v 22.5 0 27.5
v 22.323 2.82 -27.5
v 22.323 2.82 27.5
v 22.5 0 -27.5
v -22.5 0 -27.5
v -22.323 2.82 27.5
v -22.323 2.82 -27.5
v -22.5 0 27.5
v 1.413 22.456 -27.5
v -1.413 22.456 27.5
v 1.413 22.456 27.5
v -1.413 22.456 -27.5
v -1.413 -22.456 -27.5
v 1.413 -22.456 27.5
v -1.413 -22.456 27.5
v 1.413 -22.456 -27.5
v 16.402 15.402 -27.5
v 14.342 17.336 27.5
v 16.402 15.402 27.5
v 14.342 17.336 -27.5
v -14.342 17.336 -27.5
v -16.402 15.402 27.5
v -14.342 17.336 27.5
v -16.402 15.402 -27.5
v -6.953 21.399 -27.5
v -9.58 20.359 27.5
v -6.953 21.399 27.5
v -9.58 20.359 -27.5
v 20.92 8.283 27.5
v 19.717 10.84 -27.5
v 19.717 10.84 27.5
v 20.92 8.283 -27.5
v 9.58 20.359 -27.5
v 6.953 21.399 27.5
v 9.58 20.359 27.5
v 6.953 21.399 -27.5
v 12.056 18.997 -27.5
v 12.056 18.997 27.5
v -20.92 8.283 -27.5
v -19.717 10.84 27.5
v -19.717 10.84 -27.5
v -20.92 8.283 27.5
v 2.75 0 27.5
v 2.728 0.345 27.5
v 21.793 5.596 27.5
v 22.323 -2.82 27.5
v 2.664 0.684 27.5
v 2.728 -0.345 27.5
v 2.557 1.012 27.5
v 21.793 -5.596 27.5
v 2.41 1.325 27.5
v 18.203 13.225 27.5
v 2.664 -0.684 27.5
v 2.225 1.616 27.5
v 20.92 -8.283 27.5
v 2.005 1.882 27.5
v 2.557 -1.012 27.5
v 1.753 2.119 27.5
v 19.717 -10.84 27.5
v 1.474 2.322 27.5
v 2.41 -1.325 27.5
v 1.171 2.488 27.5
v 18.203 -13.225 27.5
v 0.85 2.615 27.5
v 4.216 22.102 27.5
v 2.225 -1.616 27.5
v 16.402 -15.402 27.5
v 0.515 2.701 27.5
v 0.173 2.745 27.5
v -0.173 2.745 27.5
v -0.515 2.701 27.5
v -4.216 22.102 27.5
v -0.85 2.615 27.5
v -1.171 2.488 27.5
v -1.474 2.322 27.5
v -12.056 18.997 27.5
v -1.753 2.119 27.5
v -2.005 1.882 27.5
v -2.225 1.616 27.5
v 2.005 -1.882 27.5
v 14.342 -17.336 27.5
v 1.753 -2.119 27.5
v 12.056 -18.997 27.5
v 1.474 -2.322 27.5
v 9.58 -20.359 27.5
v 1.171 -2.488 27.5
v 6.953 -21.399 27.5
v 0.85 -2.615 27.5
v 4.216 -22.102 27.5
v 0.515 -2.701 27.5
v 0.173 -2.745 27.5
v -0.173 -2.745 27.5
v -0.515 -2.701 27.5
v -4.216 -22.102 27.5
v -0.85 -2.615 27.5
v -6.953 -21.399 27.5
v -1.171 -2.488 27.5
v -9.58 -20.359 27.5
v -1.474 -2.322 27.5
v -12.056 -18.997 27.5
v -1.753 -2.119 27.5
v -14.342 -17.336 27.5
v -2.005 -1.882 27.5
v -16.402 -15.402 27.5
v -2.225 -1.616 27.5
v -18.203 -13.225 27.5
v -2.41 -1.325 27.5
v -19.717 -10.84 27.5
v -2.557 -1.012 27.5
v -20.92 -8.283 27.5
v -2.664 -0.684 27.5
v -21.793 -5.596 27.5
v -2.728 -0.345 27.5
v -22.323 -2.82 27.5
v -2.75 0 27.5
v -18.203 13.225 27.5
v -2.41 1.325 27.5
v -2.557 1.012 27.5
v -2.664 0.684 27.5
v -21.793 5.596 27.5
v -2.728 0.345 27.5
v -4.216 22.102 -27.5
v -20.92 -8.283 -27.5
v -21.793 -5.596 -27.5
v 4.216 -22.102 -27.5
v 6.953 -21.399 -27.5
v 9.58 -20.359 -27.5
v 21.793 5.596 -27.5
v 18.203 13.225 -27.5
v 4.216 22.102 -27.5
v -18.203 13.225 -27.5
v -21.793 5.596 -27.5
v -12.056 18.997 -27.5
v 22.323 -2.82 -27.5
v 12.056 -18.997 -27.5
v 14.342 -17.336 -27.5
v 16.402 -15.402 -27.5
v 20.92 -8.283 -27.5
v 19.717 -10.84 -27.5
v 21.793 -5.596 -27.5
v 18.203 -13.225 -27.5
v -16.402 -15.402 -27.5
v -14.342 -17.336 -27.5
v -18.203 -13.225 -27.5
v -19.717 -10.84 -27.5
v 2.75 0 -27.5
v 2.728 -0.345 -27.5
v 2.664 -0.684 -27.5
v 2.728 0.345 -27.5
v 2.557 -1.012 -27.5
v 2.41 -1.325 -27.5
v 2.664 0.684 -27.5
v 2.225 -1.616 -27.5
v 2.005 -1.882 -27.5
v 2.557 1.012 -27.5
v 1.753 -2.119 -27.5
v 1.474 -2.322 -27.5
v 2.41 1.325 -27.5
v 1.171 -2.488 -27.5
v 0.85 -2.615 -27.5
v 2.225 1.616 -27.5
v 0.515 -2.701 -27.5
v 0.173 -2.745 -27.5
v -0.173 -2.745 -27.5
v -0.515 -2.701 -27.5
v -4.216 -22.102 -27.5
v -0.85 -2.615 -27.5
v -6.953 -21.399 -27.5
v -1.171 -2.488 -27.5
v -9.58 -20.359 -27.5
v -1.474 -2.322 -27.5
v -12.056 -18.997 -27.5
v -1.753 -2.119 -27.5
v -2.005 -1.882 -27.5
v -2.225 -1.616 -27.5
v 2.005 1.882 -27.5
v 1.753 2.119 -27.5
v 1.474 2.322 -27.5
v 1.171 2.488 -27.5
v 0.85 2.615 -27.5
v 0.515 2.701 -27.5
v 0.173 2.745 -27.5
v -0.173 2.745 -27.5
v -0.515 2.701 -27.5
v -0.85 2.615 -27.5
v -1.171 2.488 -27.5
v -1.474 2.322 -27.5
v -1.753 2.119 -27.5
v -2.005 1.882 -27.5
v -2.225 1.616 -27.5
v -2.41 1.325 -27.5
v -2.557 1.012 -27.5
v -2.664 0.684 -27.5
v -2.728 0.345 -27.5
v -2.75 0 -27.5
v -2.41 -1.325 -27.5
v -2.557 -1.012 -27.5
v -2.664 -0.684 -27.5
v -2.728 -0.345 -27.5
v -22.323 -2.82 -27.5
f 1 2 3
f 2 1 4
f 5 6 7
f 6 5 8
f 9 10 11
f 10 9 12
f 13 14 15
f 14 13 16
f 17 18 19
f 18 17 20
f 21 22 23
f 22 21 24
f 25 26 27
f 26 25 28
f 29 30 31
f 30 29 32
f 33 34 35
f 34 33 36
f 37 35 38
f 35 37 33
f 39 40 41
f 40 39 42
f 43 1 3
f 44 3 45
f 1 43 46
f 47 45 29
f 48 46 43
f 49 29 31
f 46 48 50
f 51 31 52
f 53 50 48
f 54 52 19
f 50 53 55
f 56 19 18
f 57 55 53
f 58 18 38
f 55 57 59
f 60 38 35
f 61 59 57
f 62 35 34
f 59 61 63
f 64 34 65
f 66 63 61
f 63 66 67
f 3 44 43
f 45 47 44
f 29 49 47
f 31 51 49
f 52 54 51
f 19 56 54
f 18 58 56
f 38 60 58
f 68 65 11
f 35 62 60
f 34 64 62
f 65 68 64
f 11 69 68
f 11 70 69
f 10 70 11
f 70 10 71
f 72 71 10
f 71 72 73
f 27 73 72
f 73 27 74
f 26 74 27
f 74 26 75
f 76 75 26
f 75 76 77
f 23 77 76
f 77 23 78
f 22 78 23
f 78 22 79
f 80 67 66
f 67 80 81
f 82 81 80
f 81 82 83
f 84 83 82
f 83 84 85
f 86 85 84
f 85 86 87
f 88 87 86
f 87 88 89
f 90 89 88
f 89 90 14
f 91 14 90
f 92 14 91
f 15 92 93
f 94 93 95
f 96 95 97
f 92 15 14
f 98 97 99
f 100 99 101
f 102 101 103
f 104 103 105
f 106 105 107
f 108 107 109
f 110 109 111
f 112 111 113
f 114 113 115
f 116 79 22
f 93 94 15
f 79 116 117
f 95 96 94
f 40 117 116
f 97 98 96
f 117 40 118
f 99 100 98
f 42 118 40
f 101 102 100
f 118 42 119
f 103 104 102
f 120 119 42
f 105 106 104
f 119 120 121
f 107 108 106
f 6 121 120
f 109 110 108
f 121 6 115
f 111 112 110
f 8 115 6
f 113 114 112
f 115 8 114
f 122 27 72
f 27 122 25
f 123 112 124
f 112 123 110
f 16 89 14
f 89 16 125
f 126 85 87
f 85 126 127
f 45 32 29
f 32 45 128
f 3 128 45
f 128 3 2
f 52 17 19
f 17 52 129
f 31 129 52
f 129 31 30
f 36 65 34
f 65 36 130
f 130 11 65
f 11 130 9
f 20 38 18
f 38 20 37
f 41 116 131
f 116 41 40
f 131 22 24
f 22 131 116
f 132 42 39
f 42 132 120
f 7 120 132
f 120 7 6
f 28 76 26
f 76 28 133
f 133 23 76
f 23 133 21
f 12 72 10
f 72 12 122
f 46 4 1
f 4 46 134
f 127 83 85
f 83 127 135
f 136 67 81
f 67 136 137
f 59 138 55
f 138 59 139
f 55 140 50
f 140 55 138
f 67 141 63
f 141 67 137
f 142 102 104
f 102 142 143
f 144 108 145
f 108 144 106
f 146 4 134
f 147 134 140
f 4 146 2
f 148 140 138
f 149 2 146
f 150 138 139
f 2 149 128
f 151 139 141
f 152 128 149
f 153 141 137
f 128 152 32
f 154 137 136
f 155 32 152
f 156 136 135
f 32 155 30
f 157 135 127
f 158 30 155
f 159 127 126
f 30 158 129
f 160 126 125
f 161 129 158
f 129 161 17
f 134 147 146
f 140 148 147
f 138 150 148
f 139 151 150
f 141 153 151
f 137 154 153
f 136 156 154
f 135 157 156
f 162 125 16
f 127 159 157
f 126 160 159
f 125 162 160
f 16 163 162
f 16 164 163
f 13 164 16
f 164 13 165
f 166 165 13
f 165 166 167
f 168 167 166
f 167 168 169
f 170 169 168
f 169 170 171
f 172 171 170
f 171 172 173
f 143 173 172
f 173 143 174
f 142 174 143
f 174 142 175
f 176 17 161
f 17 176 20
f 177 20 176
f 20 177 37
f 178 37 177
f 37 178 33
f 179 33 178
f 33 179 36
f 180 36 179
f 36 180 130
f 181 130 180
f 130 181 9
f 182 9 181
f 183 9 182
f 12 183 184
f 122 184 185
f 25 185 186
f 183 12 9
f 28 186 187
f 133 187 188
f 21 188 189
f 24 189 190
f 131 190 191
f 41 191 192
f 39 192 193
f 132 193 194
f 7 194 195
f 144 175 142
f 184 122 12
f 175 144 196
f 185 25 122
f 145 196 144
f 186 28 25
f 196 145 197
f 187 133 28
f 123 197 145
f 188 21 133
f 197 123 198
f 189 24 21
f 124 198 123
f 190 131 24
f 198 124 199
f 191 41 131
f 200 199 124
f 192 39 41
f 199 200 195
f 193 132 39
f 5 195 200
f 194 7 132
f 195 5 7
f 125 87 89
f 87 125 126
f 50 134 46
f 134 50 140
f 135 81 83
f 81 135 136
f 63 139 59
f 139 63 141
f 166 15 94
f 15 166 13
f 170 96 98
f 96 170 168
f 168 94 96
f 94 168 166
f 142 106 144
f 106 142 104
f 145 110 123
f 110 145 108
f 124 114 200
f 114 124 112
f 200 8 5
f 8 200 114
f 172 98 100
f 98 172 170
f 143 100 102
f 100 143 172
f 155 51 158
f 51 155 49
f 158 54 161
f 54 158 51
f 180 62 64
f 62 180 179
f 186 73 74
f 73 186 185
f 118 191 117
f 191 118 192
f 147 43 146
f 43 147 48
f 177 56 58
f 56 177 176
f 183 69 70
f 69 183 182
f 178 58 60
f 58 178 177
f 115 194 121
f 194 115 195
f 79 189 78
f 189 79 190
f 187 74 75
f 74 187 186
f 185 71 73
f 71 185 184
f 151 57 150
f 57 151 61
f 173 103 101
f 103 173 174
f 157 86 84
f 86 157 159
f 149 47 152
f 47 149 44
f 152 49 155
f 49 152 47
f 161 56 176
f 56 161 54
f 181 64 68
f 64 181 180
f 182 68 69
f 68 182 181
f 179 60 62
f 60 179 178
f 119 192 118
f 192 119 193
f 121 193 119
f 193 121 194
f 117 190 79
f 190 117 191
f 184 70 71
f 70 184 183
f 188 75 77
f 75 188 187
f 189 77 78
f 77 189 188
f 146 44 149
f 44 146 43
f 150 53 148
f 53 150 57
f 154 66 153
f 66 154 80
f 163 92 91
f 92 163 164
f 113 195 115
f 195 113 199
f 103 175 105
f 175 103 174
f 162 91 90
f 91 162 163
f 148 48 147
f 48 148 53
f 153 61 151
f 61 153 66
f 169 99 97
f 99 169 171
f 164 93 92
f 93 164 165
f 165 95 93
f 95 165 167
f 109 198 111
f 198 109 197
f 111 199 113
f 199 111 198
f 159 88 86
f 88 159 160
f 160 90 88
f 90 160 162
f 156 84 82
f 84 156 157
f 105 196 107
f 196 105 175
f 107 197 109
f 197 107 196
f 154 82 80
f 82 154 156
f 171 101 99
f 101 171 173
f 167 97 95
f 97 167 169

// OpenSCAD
$fn = 50;


difference() {
	union() {
		translate(v = [0, 0, -27.5000000000]) {
			cylinder(h = 55, r = 22.5000000000);
		}
	}
	union() {
		translate(v = [0, 0, -100.0000000000]) {
			cylinder(h = 200, r = 2.7500000000);
		}
	}
}
